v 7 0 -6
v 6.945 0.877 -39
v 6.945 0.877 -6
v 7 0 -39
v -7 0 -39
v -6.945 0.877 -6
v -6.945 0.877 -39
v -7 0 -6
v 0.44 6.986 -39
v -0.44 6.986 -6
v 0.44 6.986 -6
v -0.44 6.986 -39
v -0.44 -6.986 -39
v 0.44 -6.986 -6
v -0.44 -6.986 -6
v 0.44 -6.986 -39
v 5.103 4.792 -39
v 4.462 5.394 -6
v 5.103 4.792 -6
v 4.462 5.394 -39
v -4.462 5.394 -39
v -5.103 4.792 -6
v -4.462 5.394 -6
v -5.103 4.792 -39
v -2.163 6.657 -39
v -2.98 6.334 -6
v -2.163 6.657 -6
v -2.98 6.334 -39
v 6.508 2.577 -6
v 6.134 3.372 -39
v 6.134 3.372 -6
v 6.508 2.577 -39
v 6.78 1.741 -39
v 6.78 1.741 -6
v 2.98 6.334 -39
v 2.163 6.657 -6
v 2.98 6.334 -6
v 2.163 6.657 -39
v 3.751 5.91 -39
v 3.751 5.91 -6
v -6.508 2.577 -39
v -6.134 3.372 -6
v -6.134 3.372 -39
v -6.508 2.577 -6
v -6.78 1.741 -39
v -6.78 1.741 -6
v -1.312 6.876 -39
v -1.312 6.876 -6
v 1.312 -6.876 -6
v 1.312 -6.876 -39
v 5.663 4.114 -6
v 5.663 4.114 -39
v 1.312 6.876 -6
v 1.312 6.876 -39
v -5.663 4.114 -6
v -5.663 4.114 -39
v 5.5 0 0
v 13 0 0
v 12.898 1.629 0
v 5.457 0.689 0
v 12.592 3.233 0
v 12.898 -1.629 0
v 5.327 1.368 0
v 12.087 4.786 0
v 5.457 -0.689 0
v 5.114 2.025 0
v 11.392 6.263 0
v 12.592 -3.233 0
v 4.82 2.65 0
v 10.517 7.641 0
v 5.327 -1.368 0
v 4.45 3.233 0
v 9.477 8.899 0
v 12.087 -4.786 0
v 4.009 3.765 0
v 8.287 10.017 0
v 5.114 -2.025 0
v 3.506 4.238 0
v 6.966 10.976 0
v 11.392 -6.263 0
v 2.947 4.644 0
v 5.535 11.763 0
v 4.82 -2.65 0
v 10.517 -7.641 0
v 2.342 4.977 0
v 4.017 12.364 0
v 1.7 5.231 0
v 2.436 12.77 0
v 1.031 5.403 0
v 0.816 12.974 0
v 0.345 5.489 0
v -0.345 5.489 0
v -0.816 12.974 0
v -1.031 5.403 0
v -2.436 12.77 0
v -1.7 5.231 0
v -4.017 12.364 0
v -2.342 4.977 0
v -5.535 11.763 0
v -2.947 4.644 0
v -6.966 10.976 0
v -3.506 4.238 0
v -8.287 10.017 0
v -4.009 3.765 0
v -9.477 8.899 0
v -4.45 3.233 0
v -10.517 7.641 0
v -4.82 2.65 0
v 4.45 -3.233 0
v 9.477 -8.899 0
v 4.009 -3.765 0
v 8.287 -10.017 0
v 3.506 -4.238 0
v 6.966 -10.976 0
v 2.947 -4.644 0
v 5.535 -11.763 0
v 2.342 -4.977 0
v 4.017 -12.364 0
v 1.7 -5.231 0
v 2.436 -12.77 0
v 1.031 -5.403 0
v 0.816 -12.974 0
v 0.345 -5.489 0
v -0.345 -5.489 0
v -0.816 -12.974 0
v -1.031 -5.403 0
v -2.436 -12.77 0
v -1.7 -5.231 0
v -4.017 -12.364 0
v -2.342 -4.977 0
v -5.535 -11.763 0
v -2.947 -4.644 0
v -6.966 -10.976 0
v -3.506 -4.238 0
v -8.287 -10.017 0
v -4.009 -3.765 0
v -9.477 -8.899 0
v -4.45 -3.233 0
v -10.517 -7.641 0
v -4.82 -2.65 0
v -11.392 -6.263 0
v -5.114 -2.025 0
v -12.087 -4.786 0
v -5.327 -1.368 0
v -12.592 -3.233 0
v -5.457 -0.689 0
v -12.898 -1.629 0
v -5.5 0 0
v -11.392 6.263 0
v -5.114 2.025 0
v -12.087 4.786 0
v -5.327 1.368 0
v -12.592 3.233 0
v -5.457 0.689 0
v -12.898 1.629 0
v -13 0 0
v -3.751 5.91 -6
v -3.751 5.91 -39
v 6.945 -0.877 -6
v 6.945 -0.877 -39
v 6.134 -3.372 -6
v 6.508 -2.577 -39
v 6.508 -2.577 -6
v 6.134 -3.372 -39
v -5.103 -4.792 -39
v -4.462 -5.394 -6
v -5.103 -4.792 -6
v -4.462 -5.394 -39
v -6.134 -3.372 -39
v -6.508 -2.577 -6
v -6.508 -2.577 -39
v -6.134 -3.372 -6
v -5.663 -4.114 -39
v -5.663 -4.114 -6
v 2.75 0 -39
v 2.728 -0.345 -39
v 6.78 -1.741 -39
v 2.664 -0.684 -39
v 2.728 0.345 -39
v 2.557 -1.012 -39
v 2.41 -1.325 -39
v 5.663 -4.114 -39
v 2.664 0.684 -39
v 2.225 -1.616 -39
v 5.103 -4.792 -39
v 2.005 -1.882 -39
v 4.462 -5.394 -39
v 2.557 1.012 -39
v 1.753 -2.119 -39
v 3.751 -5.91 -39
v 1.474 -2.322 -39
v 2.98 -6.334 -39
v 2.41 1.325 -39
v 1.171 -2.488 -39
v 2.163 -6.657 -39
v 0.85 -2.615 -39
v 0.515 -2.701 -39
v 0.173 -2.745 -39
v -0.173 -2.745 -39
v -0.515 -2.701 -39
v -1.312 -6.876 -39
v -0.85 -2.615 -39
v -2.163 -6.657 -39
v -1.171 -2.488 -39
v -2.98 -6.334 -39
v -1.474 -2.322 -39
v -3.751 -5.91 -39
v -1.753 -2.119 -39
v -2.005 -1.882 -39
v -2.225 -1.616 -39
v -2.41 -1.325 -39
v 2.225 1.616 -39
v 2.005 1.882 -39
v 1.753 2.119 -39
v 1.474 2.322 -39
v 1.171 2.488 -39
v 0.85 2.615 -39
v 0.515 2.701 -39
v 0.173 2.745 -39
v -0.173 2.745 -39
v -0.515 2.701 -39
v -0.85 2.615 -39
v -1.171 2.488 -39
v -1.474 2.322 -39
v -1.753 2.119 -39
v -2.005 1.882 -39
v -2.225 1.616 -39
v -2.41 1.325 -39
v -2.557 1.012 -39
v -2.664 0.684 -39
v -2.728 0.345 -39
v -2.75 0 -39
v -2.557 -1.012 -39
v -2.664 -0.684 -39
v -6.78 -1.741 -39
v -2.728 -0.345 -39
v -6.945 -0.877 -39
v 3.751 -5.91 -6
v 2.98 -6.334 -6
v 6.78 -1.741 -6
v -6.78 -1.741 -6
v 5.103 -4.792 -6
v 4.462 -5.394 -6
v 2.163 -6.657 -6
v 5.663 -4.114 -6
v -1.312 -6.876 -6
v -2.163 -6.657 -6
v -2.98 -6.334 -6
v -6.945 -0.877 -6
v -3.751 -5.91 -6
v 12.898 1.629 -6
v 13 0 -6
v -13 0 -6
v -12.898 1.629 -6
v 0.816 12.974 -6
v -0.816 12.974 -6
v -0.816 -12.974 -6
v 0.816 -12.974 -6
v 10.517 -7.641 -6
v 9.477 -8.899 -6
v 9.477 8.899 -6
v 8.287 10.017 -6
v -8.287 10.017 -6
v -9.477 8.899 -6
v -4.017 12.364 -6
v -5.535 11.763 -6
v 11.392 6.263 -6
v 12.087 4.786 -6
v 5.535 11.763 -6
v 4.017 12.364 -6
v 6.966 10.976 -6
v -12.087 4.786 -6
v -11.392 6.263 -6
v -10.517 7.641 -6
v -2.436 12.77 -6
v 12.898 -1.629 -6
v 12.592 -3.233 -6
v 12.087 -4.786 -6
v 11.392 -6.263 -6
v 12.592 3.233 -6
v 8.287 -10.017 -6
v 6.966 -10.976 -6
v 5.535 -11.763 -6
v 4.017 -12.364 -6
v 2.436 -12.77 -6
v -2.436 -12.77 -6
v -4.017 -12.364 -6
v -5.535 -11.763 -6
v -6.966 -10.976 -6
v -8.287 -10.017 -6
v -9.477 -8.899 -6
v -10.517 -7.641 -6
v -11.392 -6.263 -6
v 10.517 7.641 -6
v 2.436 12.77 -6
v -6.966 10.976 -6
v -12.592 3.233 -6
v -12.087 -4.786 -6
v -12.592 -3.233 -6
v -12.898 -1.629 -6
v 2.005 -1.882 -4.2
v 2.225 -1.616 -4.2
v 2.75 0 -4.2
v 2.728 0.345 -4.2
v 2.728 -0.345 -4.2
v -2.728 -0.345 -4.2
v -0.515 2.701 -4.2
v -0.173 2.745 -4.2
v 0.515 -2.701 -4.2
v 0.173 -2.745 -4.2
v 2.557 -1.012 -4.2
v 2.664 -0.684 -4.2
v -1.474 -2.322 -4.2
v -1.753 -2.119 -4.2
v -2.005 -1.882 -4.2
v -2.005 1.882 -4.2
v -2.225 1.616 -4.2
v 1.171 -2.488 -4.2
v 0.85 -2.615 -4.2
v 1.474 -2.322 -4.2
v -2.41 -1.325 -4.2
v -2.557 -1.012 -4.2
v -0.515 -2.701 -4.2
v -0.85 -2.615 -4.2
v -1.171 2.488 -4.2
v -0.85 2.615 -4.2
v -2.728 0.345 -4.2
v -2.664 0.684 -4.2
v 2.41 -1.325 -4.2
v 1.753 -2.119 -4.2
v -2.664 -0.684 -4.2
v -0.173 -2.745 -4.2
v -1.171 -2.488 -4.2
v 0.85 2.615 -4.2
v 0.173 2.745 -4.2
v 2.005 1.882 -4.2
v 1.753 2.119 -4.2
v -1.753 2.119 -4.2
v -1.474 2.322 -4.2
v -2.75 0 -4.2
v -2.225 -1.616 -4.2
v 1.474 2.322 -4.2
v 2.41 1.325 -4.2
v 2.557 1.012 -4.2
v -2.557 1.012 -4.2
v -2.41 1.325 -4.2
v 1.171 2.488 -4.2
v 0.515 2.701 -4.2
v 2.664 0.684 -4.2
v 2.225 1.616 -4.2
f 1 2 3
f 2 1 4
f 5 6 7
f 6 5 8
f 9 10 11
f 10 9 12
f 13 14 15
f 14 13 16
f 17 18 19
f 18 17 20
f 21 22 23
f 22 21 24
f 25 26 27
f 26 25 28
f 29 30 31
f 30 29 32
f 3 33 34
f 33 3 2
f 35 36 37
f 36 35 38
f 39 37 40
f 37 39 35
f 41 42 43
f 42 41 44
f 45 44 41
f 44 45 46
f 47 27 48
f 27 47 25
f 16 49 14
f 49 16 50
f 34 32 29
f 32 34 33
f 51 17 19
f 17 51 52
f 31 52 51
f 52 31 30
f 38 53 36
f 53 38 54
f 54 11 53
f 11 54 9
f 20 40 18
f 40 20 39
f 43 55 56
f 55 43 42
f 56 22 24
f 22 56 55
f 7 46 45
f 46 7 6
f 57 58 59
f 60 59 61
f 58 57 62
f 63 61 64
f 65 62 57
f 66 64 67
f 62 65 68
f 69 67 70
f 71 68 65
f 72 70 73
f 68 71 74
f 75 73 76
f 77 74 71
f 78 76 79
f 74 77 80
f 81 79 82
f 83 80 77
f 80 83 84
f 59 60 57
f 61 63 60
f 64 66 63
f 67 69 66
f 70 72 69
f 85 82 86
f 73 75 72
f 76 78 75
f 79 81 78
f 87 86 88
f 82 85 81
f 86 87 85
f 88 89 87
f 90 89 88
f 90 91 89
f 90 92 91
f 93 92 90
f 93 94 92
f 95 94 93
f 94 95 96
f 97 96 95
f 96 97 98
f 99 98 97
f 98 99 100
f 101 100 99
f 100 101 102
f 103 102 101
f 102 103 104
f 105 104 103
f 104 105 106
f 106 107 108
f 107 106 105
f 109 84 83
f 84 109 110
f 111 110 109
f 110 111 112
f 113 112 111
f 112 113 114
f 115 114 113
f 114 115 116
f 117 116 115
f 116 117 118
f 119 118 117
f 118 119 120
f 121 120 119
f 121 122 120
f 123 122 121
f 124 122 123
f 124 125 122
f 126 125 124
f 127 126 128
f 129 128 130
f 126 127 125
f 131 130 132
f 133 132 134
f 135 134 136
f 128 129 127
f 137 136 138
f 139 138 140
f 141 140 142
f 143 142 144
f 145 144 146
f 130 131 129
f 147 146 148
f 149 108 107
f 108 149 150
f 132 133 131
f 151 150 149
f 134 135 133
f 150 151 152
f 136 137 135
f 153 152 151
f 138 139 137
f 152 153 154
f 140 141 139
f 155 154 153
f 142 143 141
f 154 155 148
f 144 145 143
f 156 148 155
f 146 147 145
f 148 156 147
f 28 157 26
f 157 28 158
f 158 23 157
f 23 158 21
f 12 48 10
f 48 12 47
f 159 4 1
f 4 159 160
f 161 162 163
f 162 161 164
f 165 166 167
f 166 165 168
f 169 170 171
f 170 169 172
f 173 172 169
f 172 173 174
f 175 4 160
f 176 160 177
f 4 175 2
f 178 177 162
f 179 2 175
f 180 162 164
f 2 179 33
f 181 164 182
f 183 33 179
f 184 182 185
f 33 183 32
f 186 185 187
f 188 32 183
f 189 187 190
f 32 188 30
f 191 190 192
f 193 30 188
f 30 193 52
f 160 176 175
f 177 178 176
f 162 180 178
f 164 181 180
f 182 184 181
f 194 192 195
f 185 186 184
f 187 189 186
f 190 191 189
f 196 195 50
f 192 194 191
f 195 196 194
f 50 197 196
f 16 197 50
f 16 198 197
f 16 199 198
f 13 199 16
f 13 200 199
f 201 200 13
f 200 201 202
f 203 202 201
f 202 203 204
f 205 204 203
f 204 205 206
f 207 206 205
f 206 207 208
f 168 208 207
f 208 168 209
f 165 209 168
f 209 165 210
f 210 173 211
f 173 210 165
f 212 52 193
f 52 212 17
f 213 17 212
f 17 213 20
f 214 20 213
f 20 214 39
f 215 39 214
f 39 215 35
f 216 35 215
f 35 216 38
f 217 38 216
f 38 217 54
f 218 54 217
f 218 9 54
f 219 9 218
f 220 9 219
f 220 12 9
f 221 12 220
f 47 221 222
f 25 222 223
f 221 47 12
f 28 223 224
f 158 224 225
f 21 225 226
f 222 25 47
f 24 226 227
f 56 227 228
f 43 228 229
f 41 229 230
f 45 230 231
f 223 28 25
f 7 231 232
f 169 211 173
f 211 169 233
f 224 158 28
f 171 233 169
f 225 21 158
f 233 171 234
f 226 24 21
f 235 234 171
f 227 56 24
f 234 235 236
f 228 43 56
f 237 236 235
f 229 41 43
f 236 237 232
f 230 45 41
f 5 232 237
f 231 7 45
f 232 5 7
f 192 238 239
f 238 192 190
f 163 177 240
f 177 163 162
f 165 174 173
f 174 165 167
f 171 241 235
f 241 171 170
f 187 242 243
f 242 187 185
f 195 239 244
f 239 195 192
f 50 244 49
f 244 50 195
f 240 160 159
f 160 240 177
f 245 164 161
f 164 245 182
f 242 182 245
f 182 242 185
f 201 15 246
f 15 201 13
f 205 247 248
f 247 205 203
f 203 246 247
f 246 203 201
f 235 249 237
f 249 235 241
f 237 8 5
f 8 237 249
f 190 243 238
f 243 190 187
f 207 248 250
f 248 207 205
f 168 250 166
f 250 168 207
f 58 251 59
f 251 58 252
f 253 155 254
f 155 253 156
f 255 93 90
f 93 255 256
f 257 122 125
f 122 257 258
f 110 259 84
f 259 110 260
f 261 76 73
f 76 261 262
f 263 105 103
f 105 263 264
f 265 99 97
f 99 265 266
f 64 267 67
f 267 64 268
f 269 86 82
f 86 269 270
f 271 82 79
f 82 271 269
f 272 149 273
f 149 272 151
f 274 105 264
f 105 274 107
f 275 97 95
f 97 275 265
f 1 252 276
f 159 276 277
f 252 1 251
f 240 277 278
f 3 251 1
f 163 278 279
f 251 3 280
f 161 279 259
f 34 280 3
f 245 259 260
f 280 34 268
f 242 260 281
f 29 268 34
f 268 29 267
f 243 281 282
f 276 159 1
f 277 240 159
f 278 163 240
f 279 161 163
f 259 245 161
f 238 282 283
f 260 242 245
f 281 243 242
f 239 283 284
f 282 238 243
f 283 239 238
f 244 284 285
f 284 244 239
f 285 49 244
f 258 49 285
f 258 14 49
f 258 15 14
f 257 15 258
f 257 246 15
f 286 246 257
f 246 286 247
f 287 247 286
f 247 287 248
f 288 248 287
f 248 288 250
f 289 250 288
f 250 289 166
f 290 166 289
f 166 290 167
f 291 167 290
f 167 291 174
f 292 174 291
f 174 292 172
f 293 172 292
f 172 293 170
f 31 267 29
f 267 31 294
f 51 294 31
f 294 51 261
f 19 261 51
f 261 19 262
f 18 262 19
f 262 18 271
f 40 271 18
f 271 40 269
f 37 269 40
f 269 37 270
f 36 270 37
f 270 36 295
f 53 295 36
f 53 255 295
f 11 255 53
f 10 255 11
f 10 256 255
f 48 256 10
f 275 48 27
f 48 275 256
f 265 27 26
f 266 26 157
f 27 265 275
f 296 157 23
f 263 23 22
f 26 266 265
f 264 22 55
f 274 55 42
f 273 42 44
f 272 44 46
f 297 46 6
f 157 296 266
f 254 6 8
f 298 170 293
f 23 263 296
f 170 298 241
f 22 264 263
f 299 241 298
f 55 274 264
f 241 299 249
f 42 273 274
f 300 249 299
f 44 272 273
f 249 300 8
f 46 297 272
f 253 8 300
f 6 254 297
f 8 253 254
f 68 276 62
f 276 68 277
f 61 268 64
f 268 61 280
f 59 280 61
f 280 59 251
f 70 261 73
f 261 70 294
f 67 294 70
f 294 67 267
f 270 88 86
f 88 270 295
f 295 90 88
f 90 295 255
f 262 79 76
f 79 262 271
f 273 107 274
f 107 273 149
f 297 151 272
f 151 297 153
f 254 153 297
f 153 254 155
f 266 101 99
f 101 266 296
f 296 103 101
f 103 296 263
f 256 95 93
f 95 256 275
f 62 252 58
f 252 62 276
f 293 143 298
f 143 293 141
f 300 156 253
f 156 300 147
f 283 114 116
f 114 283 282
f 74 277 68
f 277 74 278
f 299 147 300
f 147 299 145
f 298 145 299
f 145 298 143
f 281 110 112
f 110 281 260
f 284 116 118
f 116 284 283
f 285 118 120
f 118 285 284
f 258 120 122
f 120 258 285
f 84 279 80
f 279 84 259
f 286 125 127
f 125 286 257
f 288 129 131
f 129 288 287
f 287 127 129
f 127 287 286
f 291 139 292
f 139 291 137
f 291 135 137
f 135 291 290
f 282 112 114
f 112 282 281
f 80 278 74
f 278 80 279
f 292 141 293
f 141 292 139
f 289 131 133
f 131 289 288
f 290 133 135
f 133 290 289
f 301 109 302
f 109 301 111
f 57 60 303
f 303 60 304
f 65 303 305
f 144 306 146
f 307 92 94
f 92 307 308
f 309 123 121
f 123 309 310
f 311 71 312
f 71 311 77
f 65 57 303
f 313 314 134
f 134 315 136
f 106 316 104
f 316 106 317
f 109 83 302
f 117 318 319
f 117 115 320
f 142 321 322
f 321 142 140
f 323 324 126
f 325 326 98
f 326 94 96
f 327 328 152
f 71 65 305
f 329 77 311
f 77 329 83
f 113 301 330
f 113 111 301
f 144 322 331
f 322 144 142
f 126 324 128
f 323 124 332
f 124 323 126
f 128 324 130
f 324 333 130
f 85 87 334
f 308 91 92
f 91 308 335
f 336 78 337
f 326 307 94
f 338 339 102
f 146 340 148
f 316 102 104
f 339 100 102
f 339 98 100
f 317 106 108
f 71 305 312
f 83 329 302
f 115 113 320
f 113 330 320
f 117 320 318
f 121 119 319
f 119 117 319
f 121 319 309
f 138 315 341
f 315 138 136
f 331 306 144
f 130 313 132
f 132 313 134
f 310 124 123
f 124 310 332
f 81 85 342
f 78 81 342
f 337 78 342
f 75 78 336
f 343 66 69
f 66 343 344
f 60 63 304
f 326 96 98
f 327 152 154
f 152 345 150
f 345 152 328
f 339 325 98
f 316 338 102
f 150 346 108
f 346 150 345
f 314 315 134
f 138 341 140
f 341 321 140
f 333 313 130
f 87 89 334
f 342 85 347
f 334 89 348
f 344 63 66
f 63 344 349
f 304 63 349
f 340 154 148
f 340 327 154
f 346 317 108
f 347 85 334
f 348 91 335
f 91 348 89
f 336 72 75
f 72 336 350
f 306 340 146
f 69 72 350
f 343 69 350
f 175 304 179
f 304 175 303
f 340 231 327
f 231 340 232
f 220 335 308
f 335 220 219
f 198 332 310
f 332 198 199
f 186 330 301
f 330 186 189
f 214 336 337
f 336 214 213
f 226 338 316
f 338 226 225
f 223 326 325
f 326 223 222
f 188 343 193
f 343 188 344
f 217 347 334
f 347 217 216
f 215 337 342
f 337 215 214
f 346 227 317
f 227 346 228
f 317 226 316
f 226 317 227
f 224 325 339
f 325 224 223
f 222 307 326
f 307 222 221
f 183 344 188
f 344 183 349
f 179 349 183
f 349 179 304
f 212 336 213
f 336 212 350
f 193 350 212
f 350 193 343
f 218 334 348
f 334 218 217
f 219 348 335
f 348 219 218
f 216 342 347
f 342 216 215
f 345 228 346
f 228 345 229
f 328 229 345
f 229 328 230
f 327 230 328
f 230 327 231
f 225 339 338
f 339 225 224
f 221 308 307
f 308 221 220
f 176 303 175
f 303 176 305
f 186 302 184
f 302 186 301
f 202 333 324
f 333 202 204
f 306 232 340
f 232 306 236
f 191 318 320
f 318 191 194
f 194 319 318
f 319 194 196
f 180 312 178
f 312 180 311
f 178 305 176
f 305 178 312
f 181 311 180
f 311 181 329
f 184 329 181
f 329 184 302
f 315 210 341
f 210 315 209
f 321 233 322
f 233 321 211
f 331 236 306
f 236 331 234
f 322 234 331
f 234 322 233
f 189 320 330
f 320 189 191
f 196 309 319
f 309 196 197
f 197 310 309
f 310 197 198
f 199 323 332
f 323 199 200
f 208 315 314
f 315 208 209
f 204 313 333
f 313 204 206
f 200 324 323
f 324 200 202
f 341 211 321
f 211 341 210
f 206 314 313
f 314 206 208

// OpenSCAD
$fn = 50;


difference() {
	union() {
		translate(v = [0, 0, -39.0000000000]) {
			cylinder(h = 39, r = 7.0000000000);
		}
		translate(v = [0, 0, -6.0000000000]) {
			cylinder(h = 6, r = 13.0000000000);
		}
	}
	union() {
		translate(v = [0, 0, 0]) {
			rotate(a = [0, 0, 0]) {
				difference() {
					union() {
						#translate(v = [0, 0, -39.0000000000]) {
							cylinder(h = 39, r = 2.2500000000);
						}
						#translate(v = [0, 0, -4.2000000000]) {
							cylinder(h = 4.2000000000, r1 = 2.7500000000, r2 = 5.5000000000);
						}
						#translate(v = [0, 0, -39.0000000000]) {
							cylinder(h = 39, r = 2.7500000000);
						}
						#translate(v = [0, 0, -39.0000000000]) {
							cylinder(h = 39, r = 2.2500000000);
						}
					}
					union();
				}
			}
		}
	}
}
